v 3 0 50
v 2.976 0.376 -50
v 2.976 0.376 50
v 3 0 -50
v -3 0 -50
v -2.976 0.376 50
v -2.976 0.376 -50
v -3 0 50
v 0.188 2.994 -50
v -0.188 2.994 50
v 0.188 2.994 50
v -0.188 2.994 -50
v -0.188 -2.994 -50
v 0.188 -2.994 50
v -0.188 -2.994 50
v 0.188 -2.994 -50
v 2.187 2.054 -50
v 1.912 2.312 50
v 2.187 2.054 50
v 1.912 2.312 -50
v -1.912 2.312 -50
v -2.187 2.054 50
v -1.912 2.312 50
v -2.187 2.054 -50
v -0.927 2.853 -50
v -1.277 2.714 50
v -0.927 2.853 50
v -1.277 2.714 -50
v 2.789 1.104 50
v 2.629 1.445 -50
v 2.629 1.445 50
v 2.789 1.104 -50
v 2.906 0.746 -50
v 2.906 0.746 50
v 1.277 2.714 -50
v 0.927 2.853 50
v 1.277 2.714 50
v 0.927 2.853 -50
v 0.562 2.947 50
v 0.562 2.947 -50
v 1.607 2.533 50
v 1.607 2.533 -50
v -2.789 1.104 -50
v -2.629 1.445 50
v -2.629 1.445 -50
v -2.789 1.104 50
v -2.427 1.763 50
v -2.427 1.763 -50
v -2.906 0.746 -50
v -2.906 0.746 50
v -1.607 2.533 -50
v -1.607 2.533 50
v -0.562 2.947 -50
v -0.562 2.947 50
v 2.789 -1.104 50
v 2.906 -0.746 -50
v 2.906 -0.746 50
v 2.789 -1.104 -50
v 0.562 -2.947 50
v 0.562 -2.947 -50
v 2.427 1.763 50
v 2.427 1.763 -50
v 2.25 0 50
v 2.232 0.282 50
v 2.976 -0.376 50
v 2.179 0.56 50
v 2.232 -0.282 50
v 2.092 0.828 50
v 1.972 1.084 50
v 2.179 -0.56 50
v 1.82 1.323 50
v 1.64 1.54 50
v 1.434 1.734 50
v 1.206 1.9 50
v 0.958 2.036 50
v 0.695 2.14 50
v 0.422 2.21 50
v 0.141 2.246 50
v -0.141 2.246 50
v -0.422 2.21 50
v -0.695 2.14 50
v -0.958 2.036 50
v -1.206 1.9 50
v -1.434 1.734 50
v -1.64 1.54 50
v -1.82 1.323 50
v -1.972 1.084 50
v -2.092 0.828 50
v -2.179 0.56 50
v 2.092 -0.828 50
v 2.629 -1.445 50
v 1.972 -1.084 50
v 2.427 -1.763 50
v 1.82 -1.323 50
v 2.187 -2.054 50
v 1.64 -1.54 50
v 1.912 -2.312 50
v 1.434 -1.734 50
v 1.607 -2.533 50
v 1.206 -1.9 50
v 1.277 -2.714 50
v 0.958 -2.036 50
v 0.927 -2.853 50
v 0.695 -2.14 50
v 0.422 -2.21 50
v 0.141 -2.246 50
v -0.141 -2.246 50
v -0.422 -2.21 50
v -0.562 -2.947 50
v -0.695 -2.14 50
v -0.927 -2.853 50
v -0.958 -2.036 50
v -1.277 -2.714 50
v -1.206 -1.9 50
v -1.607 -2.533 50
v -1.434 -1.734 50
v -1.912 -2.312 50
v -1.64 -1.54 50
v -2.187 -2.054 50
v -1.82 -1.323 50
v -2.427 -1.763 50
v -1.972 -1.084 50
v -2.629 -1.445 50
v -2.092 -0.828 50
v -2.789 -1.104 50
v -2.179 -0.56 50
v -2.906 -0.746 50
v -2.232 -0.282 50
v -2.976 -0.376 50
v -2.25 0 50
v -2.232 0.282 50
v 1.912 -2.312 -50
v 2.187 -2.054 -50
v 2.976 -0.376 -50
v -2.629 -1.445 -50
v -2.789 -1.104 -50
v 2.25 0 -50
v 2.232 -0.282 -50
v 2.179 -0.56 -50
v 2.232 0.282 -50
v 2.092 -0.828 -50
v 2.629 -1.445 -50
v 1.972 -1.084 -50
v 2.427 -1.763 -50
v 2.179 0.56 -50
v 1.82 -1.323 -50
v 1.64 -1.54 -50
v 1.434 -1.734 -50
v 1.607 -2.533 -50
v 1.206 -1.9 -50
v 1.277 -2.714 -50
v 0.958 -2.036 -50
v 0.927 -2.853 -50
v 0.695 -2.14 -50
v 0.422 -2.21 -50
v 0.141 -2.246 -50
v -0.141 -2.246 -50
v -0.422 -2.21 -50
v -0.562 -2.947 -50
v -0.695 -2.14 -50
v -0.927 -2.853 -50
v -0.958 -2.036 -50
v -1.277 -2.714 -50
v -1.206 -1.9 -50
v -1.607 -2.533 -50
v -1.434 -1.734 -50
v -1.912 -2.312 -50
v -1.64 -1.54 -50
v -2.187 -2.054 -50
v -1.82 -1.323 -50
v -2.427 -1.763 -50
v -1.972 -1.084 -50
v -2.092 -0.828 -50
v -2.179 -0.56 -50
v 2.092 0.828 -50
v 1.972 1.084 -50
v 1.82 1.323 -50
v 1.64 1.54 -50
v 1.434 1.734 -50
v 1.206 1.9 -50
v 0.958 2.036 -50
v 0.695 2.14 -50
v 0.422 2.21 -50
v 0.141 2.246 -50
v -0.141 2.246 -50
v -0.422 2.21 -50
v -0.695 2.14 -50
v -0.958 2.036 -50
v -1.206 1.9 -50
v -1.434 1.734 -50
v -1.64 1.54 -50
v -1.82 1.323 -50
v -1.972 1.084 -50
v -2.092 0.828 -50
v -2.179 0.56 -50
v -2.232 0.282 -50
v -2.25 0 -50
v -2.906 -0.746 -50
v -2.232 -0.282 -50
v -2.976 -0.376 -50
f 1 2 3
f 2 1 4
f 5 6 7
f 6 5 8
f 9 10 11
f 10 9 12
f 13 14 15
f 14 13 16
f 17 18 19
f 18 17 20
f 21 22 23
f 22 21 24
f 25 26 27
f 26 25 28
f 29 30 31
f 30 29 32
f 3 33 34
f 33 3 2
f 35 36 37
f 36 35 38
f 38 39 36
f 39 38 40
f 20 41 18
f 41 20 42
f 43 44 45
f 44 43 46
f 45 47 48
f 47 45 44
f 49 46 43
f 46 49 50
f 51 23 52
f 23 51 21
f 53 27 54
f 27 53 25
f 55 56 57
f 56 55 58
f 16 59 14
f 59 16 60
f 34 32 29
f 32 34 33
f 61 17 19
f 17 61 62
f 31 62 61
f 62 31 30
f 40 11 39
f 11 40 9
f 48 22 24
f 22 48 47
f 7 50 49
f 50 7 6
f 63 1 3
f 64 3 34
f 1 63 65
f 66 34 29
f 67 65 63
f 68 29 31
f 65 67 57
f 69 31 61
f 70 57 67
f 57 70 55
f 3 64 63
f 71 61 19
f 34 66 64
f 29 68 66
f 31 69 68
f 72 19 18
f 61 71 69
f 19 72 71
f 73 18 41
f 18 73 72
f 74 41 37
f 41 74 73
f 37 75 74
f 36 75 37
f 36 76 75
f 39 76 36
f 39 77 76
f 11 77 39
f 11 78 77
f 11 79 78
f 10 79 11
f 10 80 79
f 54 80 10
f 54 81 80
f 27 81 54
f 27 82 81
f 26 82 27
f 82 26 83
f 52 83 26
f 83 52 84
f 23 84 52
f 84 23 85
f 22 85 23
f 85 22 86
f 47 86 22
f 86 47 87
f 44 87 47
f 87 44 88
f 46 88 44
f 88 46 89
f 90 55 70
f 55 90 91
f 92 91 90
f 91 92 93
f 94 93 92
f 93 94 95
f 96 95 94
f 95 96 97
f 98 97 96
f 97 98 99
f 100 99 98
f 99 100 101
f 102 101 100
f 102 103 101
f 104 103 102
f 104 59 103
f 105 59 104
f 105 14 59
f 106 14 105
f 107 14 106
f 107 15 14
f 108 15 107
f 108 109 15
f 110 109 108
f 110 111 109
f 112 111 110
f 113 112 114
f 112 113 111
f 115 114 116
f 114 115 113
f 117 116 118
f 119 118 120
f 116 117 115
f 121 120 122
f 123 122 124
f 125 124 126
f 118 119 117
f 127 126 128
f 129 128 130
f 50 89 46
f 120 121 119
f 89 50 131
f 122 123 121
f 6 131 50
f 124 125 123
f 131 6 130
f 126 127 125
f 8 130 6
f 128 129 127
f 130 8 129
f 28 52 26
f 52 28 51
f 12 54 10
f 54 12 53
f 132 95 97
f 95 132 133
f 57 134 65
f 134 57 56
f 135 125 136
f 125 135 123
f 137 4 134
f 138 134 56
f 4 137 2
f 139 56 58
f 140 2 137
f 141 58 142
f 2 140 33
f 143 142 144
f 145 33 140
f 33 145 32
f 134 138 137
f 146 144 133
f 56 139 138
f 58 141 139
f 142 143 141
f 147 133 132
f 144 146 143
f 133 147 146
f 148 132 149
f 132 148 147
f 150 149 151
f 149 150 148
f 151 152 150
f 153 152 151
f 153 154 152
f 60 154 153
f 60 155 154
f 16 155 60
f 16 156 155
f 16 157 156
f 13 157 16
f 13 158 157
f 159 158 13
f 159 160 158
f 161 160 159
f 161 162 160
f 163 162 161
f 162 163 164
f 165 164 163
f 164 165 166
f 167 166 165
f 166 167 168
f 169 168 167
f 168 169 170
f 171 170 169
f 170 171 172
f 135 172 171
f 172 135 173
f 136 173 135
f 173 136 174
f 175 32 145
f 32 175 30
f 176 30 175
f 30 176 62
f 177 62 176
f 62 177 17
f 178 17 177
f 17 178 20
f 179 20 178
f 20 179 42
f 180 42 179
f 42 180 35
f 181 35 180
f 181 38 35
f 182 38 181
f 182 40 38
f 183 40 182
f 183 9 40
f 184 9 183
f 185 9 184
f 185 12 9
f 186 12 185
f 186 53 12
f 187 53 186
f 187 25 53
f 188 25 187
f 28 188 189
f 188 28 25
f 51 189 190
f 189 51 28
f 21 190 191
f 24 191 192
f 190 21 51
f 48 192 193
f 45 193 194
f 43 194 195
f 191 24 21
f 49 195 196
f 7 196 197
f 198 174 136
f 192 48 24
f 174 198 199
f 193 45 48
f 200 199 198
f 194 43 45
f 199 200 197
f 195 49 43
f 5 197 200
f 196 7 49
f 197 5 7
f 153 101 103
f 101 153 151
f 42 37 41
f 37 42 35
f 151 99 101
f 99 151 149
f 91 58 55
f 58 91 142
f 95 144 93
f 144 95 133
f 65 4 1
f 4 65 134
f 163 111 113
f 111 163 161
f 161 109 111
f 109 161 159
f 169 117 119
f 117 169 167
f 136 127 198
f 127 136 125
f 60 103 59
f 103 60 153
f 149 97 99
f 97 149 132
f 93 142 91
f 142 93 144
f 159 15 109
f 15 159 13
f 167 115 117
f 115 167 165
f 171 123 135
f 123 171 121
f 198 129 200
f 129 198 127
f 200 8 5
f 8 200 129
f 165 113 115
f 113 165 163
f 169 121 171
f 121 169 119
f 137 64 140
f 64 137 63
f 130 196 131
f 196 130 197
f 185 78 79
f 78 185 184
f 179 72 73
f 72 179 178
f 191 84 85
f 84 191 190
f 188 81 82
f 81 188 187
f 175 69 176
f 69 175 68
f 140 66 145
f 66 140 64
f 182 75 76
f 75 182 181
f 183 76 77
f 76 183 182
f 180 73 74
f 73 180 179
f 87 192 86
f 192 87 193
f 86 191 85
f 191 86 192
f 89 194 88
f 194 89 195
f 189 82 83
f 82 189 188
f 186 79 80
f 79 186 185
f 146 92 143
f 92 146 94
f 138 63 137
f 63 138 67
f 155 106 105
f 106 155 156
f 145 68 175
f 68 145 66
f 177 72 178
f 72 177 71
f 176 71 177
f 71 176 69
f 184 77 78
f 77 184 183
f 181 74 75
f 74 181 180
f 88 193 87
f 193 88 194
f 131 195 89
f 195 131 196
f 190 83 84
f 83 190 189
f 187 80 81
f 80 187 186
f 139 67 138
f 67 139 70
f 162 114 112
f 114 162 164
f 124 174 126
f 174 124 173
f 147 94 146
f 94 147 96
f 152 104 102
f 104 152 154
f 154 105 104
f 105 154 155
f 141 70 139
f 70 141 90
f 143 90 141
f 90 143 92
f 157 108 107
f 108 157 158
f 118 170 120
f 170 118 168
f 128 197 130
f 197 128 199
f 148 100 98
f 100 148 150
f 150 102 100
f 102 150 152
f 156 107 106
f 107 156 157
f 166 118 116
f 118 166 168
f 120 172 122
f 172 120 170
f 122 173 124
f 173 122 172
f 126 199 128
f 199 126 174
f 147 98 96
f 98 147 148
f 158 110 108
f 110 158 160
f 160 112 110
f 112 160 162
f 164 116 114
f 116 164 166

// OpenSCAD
$fn = 50;


difference() {
	union() {
		translate(v = [0, 0, -50.0000000000]) {
			cylinder(h = 100, r = 3.0000000000);
		}
	}
	union() {
		translate(v = [0, 0, -100.0000000000]) {
			cylinder(h = 200, r = 2.2500000000);
		}
	}
}
